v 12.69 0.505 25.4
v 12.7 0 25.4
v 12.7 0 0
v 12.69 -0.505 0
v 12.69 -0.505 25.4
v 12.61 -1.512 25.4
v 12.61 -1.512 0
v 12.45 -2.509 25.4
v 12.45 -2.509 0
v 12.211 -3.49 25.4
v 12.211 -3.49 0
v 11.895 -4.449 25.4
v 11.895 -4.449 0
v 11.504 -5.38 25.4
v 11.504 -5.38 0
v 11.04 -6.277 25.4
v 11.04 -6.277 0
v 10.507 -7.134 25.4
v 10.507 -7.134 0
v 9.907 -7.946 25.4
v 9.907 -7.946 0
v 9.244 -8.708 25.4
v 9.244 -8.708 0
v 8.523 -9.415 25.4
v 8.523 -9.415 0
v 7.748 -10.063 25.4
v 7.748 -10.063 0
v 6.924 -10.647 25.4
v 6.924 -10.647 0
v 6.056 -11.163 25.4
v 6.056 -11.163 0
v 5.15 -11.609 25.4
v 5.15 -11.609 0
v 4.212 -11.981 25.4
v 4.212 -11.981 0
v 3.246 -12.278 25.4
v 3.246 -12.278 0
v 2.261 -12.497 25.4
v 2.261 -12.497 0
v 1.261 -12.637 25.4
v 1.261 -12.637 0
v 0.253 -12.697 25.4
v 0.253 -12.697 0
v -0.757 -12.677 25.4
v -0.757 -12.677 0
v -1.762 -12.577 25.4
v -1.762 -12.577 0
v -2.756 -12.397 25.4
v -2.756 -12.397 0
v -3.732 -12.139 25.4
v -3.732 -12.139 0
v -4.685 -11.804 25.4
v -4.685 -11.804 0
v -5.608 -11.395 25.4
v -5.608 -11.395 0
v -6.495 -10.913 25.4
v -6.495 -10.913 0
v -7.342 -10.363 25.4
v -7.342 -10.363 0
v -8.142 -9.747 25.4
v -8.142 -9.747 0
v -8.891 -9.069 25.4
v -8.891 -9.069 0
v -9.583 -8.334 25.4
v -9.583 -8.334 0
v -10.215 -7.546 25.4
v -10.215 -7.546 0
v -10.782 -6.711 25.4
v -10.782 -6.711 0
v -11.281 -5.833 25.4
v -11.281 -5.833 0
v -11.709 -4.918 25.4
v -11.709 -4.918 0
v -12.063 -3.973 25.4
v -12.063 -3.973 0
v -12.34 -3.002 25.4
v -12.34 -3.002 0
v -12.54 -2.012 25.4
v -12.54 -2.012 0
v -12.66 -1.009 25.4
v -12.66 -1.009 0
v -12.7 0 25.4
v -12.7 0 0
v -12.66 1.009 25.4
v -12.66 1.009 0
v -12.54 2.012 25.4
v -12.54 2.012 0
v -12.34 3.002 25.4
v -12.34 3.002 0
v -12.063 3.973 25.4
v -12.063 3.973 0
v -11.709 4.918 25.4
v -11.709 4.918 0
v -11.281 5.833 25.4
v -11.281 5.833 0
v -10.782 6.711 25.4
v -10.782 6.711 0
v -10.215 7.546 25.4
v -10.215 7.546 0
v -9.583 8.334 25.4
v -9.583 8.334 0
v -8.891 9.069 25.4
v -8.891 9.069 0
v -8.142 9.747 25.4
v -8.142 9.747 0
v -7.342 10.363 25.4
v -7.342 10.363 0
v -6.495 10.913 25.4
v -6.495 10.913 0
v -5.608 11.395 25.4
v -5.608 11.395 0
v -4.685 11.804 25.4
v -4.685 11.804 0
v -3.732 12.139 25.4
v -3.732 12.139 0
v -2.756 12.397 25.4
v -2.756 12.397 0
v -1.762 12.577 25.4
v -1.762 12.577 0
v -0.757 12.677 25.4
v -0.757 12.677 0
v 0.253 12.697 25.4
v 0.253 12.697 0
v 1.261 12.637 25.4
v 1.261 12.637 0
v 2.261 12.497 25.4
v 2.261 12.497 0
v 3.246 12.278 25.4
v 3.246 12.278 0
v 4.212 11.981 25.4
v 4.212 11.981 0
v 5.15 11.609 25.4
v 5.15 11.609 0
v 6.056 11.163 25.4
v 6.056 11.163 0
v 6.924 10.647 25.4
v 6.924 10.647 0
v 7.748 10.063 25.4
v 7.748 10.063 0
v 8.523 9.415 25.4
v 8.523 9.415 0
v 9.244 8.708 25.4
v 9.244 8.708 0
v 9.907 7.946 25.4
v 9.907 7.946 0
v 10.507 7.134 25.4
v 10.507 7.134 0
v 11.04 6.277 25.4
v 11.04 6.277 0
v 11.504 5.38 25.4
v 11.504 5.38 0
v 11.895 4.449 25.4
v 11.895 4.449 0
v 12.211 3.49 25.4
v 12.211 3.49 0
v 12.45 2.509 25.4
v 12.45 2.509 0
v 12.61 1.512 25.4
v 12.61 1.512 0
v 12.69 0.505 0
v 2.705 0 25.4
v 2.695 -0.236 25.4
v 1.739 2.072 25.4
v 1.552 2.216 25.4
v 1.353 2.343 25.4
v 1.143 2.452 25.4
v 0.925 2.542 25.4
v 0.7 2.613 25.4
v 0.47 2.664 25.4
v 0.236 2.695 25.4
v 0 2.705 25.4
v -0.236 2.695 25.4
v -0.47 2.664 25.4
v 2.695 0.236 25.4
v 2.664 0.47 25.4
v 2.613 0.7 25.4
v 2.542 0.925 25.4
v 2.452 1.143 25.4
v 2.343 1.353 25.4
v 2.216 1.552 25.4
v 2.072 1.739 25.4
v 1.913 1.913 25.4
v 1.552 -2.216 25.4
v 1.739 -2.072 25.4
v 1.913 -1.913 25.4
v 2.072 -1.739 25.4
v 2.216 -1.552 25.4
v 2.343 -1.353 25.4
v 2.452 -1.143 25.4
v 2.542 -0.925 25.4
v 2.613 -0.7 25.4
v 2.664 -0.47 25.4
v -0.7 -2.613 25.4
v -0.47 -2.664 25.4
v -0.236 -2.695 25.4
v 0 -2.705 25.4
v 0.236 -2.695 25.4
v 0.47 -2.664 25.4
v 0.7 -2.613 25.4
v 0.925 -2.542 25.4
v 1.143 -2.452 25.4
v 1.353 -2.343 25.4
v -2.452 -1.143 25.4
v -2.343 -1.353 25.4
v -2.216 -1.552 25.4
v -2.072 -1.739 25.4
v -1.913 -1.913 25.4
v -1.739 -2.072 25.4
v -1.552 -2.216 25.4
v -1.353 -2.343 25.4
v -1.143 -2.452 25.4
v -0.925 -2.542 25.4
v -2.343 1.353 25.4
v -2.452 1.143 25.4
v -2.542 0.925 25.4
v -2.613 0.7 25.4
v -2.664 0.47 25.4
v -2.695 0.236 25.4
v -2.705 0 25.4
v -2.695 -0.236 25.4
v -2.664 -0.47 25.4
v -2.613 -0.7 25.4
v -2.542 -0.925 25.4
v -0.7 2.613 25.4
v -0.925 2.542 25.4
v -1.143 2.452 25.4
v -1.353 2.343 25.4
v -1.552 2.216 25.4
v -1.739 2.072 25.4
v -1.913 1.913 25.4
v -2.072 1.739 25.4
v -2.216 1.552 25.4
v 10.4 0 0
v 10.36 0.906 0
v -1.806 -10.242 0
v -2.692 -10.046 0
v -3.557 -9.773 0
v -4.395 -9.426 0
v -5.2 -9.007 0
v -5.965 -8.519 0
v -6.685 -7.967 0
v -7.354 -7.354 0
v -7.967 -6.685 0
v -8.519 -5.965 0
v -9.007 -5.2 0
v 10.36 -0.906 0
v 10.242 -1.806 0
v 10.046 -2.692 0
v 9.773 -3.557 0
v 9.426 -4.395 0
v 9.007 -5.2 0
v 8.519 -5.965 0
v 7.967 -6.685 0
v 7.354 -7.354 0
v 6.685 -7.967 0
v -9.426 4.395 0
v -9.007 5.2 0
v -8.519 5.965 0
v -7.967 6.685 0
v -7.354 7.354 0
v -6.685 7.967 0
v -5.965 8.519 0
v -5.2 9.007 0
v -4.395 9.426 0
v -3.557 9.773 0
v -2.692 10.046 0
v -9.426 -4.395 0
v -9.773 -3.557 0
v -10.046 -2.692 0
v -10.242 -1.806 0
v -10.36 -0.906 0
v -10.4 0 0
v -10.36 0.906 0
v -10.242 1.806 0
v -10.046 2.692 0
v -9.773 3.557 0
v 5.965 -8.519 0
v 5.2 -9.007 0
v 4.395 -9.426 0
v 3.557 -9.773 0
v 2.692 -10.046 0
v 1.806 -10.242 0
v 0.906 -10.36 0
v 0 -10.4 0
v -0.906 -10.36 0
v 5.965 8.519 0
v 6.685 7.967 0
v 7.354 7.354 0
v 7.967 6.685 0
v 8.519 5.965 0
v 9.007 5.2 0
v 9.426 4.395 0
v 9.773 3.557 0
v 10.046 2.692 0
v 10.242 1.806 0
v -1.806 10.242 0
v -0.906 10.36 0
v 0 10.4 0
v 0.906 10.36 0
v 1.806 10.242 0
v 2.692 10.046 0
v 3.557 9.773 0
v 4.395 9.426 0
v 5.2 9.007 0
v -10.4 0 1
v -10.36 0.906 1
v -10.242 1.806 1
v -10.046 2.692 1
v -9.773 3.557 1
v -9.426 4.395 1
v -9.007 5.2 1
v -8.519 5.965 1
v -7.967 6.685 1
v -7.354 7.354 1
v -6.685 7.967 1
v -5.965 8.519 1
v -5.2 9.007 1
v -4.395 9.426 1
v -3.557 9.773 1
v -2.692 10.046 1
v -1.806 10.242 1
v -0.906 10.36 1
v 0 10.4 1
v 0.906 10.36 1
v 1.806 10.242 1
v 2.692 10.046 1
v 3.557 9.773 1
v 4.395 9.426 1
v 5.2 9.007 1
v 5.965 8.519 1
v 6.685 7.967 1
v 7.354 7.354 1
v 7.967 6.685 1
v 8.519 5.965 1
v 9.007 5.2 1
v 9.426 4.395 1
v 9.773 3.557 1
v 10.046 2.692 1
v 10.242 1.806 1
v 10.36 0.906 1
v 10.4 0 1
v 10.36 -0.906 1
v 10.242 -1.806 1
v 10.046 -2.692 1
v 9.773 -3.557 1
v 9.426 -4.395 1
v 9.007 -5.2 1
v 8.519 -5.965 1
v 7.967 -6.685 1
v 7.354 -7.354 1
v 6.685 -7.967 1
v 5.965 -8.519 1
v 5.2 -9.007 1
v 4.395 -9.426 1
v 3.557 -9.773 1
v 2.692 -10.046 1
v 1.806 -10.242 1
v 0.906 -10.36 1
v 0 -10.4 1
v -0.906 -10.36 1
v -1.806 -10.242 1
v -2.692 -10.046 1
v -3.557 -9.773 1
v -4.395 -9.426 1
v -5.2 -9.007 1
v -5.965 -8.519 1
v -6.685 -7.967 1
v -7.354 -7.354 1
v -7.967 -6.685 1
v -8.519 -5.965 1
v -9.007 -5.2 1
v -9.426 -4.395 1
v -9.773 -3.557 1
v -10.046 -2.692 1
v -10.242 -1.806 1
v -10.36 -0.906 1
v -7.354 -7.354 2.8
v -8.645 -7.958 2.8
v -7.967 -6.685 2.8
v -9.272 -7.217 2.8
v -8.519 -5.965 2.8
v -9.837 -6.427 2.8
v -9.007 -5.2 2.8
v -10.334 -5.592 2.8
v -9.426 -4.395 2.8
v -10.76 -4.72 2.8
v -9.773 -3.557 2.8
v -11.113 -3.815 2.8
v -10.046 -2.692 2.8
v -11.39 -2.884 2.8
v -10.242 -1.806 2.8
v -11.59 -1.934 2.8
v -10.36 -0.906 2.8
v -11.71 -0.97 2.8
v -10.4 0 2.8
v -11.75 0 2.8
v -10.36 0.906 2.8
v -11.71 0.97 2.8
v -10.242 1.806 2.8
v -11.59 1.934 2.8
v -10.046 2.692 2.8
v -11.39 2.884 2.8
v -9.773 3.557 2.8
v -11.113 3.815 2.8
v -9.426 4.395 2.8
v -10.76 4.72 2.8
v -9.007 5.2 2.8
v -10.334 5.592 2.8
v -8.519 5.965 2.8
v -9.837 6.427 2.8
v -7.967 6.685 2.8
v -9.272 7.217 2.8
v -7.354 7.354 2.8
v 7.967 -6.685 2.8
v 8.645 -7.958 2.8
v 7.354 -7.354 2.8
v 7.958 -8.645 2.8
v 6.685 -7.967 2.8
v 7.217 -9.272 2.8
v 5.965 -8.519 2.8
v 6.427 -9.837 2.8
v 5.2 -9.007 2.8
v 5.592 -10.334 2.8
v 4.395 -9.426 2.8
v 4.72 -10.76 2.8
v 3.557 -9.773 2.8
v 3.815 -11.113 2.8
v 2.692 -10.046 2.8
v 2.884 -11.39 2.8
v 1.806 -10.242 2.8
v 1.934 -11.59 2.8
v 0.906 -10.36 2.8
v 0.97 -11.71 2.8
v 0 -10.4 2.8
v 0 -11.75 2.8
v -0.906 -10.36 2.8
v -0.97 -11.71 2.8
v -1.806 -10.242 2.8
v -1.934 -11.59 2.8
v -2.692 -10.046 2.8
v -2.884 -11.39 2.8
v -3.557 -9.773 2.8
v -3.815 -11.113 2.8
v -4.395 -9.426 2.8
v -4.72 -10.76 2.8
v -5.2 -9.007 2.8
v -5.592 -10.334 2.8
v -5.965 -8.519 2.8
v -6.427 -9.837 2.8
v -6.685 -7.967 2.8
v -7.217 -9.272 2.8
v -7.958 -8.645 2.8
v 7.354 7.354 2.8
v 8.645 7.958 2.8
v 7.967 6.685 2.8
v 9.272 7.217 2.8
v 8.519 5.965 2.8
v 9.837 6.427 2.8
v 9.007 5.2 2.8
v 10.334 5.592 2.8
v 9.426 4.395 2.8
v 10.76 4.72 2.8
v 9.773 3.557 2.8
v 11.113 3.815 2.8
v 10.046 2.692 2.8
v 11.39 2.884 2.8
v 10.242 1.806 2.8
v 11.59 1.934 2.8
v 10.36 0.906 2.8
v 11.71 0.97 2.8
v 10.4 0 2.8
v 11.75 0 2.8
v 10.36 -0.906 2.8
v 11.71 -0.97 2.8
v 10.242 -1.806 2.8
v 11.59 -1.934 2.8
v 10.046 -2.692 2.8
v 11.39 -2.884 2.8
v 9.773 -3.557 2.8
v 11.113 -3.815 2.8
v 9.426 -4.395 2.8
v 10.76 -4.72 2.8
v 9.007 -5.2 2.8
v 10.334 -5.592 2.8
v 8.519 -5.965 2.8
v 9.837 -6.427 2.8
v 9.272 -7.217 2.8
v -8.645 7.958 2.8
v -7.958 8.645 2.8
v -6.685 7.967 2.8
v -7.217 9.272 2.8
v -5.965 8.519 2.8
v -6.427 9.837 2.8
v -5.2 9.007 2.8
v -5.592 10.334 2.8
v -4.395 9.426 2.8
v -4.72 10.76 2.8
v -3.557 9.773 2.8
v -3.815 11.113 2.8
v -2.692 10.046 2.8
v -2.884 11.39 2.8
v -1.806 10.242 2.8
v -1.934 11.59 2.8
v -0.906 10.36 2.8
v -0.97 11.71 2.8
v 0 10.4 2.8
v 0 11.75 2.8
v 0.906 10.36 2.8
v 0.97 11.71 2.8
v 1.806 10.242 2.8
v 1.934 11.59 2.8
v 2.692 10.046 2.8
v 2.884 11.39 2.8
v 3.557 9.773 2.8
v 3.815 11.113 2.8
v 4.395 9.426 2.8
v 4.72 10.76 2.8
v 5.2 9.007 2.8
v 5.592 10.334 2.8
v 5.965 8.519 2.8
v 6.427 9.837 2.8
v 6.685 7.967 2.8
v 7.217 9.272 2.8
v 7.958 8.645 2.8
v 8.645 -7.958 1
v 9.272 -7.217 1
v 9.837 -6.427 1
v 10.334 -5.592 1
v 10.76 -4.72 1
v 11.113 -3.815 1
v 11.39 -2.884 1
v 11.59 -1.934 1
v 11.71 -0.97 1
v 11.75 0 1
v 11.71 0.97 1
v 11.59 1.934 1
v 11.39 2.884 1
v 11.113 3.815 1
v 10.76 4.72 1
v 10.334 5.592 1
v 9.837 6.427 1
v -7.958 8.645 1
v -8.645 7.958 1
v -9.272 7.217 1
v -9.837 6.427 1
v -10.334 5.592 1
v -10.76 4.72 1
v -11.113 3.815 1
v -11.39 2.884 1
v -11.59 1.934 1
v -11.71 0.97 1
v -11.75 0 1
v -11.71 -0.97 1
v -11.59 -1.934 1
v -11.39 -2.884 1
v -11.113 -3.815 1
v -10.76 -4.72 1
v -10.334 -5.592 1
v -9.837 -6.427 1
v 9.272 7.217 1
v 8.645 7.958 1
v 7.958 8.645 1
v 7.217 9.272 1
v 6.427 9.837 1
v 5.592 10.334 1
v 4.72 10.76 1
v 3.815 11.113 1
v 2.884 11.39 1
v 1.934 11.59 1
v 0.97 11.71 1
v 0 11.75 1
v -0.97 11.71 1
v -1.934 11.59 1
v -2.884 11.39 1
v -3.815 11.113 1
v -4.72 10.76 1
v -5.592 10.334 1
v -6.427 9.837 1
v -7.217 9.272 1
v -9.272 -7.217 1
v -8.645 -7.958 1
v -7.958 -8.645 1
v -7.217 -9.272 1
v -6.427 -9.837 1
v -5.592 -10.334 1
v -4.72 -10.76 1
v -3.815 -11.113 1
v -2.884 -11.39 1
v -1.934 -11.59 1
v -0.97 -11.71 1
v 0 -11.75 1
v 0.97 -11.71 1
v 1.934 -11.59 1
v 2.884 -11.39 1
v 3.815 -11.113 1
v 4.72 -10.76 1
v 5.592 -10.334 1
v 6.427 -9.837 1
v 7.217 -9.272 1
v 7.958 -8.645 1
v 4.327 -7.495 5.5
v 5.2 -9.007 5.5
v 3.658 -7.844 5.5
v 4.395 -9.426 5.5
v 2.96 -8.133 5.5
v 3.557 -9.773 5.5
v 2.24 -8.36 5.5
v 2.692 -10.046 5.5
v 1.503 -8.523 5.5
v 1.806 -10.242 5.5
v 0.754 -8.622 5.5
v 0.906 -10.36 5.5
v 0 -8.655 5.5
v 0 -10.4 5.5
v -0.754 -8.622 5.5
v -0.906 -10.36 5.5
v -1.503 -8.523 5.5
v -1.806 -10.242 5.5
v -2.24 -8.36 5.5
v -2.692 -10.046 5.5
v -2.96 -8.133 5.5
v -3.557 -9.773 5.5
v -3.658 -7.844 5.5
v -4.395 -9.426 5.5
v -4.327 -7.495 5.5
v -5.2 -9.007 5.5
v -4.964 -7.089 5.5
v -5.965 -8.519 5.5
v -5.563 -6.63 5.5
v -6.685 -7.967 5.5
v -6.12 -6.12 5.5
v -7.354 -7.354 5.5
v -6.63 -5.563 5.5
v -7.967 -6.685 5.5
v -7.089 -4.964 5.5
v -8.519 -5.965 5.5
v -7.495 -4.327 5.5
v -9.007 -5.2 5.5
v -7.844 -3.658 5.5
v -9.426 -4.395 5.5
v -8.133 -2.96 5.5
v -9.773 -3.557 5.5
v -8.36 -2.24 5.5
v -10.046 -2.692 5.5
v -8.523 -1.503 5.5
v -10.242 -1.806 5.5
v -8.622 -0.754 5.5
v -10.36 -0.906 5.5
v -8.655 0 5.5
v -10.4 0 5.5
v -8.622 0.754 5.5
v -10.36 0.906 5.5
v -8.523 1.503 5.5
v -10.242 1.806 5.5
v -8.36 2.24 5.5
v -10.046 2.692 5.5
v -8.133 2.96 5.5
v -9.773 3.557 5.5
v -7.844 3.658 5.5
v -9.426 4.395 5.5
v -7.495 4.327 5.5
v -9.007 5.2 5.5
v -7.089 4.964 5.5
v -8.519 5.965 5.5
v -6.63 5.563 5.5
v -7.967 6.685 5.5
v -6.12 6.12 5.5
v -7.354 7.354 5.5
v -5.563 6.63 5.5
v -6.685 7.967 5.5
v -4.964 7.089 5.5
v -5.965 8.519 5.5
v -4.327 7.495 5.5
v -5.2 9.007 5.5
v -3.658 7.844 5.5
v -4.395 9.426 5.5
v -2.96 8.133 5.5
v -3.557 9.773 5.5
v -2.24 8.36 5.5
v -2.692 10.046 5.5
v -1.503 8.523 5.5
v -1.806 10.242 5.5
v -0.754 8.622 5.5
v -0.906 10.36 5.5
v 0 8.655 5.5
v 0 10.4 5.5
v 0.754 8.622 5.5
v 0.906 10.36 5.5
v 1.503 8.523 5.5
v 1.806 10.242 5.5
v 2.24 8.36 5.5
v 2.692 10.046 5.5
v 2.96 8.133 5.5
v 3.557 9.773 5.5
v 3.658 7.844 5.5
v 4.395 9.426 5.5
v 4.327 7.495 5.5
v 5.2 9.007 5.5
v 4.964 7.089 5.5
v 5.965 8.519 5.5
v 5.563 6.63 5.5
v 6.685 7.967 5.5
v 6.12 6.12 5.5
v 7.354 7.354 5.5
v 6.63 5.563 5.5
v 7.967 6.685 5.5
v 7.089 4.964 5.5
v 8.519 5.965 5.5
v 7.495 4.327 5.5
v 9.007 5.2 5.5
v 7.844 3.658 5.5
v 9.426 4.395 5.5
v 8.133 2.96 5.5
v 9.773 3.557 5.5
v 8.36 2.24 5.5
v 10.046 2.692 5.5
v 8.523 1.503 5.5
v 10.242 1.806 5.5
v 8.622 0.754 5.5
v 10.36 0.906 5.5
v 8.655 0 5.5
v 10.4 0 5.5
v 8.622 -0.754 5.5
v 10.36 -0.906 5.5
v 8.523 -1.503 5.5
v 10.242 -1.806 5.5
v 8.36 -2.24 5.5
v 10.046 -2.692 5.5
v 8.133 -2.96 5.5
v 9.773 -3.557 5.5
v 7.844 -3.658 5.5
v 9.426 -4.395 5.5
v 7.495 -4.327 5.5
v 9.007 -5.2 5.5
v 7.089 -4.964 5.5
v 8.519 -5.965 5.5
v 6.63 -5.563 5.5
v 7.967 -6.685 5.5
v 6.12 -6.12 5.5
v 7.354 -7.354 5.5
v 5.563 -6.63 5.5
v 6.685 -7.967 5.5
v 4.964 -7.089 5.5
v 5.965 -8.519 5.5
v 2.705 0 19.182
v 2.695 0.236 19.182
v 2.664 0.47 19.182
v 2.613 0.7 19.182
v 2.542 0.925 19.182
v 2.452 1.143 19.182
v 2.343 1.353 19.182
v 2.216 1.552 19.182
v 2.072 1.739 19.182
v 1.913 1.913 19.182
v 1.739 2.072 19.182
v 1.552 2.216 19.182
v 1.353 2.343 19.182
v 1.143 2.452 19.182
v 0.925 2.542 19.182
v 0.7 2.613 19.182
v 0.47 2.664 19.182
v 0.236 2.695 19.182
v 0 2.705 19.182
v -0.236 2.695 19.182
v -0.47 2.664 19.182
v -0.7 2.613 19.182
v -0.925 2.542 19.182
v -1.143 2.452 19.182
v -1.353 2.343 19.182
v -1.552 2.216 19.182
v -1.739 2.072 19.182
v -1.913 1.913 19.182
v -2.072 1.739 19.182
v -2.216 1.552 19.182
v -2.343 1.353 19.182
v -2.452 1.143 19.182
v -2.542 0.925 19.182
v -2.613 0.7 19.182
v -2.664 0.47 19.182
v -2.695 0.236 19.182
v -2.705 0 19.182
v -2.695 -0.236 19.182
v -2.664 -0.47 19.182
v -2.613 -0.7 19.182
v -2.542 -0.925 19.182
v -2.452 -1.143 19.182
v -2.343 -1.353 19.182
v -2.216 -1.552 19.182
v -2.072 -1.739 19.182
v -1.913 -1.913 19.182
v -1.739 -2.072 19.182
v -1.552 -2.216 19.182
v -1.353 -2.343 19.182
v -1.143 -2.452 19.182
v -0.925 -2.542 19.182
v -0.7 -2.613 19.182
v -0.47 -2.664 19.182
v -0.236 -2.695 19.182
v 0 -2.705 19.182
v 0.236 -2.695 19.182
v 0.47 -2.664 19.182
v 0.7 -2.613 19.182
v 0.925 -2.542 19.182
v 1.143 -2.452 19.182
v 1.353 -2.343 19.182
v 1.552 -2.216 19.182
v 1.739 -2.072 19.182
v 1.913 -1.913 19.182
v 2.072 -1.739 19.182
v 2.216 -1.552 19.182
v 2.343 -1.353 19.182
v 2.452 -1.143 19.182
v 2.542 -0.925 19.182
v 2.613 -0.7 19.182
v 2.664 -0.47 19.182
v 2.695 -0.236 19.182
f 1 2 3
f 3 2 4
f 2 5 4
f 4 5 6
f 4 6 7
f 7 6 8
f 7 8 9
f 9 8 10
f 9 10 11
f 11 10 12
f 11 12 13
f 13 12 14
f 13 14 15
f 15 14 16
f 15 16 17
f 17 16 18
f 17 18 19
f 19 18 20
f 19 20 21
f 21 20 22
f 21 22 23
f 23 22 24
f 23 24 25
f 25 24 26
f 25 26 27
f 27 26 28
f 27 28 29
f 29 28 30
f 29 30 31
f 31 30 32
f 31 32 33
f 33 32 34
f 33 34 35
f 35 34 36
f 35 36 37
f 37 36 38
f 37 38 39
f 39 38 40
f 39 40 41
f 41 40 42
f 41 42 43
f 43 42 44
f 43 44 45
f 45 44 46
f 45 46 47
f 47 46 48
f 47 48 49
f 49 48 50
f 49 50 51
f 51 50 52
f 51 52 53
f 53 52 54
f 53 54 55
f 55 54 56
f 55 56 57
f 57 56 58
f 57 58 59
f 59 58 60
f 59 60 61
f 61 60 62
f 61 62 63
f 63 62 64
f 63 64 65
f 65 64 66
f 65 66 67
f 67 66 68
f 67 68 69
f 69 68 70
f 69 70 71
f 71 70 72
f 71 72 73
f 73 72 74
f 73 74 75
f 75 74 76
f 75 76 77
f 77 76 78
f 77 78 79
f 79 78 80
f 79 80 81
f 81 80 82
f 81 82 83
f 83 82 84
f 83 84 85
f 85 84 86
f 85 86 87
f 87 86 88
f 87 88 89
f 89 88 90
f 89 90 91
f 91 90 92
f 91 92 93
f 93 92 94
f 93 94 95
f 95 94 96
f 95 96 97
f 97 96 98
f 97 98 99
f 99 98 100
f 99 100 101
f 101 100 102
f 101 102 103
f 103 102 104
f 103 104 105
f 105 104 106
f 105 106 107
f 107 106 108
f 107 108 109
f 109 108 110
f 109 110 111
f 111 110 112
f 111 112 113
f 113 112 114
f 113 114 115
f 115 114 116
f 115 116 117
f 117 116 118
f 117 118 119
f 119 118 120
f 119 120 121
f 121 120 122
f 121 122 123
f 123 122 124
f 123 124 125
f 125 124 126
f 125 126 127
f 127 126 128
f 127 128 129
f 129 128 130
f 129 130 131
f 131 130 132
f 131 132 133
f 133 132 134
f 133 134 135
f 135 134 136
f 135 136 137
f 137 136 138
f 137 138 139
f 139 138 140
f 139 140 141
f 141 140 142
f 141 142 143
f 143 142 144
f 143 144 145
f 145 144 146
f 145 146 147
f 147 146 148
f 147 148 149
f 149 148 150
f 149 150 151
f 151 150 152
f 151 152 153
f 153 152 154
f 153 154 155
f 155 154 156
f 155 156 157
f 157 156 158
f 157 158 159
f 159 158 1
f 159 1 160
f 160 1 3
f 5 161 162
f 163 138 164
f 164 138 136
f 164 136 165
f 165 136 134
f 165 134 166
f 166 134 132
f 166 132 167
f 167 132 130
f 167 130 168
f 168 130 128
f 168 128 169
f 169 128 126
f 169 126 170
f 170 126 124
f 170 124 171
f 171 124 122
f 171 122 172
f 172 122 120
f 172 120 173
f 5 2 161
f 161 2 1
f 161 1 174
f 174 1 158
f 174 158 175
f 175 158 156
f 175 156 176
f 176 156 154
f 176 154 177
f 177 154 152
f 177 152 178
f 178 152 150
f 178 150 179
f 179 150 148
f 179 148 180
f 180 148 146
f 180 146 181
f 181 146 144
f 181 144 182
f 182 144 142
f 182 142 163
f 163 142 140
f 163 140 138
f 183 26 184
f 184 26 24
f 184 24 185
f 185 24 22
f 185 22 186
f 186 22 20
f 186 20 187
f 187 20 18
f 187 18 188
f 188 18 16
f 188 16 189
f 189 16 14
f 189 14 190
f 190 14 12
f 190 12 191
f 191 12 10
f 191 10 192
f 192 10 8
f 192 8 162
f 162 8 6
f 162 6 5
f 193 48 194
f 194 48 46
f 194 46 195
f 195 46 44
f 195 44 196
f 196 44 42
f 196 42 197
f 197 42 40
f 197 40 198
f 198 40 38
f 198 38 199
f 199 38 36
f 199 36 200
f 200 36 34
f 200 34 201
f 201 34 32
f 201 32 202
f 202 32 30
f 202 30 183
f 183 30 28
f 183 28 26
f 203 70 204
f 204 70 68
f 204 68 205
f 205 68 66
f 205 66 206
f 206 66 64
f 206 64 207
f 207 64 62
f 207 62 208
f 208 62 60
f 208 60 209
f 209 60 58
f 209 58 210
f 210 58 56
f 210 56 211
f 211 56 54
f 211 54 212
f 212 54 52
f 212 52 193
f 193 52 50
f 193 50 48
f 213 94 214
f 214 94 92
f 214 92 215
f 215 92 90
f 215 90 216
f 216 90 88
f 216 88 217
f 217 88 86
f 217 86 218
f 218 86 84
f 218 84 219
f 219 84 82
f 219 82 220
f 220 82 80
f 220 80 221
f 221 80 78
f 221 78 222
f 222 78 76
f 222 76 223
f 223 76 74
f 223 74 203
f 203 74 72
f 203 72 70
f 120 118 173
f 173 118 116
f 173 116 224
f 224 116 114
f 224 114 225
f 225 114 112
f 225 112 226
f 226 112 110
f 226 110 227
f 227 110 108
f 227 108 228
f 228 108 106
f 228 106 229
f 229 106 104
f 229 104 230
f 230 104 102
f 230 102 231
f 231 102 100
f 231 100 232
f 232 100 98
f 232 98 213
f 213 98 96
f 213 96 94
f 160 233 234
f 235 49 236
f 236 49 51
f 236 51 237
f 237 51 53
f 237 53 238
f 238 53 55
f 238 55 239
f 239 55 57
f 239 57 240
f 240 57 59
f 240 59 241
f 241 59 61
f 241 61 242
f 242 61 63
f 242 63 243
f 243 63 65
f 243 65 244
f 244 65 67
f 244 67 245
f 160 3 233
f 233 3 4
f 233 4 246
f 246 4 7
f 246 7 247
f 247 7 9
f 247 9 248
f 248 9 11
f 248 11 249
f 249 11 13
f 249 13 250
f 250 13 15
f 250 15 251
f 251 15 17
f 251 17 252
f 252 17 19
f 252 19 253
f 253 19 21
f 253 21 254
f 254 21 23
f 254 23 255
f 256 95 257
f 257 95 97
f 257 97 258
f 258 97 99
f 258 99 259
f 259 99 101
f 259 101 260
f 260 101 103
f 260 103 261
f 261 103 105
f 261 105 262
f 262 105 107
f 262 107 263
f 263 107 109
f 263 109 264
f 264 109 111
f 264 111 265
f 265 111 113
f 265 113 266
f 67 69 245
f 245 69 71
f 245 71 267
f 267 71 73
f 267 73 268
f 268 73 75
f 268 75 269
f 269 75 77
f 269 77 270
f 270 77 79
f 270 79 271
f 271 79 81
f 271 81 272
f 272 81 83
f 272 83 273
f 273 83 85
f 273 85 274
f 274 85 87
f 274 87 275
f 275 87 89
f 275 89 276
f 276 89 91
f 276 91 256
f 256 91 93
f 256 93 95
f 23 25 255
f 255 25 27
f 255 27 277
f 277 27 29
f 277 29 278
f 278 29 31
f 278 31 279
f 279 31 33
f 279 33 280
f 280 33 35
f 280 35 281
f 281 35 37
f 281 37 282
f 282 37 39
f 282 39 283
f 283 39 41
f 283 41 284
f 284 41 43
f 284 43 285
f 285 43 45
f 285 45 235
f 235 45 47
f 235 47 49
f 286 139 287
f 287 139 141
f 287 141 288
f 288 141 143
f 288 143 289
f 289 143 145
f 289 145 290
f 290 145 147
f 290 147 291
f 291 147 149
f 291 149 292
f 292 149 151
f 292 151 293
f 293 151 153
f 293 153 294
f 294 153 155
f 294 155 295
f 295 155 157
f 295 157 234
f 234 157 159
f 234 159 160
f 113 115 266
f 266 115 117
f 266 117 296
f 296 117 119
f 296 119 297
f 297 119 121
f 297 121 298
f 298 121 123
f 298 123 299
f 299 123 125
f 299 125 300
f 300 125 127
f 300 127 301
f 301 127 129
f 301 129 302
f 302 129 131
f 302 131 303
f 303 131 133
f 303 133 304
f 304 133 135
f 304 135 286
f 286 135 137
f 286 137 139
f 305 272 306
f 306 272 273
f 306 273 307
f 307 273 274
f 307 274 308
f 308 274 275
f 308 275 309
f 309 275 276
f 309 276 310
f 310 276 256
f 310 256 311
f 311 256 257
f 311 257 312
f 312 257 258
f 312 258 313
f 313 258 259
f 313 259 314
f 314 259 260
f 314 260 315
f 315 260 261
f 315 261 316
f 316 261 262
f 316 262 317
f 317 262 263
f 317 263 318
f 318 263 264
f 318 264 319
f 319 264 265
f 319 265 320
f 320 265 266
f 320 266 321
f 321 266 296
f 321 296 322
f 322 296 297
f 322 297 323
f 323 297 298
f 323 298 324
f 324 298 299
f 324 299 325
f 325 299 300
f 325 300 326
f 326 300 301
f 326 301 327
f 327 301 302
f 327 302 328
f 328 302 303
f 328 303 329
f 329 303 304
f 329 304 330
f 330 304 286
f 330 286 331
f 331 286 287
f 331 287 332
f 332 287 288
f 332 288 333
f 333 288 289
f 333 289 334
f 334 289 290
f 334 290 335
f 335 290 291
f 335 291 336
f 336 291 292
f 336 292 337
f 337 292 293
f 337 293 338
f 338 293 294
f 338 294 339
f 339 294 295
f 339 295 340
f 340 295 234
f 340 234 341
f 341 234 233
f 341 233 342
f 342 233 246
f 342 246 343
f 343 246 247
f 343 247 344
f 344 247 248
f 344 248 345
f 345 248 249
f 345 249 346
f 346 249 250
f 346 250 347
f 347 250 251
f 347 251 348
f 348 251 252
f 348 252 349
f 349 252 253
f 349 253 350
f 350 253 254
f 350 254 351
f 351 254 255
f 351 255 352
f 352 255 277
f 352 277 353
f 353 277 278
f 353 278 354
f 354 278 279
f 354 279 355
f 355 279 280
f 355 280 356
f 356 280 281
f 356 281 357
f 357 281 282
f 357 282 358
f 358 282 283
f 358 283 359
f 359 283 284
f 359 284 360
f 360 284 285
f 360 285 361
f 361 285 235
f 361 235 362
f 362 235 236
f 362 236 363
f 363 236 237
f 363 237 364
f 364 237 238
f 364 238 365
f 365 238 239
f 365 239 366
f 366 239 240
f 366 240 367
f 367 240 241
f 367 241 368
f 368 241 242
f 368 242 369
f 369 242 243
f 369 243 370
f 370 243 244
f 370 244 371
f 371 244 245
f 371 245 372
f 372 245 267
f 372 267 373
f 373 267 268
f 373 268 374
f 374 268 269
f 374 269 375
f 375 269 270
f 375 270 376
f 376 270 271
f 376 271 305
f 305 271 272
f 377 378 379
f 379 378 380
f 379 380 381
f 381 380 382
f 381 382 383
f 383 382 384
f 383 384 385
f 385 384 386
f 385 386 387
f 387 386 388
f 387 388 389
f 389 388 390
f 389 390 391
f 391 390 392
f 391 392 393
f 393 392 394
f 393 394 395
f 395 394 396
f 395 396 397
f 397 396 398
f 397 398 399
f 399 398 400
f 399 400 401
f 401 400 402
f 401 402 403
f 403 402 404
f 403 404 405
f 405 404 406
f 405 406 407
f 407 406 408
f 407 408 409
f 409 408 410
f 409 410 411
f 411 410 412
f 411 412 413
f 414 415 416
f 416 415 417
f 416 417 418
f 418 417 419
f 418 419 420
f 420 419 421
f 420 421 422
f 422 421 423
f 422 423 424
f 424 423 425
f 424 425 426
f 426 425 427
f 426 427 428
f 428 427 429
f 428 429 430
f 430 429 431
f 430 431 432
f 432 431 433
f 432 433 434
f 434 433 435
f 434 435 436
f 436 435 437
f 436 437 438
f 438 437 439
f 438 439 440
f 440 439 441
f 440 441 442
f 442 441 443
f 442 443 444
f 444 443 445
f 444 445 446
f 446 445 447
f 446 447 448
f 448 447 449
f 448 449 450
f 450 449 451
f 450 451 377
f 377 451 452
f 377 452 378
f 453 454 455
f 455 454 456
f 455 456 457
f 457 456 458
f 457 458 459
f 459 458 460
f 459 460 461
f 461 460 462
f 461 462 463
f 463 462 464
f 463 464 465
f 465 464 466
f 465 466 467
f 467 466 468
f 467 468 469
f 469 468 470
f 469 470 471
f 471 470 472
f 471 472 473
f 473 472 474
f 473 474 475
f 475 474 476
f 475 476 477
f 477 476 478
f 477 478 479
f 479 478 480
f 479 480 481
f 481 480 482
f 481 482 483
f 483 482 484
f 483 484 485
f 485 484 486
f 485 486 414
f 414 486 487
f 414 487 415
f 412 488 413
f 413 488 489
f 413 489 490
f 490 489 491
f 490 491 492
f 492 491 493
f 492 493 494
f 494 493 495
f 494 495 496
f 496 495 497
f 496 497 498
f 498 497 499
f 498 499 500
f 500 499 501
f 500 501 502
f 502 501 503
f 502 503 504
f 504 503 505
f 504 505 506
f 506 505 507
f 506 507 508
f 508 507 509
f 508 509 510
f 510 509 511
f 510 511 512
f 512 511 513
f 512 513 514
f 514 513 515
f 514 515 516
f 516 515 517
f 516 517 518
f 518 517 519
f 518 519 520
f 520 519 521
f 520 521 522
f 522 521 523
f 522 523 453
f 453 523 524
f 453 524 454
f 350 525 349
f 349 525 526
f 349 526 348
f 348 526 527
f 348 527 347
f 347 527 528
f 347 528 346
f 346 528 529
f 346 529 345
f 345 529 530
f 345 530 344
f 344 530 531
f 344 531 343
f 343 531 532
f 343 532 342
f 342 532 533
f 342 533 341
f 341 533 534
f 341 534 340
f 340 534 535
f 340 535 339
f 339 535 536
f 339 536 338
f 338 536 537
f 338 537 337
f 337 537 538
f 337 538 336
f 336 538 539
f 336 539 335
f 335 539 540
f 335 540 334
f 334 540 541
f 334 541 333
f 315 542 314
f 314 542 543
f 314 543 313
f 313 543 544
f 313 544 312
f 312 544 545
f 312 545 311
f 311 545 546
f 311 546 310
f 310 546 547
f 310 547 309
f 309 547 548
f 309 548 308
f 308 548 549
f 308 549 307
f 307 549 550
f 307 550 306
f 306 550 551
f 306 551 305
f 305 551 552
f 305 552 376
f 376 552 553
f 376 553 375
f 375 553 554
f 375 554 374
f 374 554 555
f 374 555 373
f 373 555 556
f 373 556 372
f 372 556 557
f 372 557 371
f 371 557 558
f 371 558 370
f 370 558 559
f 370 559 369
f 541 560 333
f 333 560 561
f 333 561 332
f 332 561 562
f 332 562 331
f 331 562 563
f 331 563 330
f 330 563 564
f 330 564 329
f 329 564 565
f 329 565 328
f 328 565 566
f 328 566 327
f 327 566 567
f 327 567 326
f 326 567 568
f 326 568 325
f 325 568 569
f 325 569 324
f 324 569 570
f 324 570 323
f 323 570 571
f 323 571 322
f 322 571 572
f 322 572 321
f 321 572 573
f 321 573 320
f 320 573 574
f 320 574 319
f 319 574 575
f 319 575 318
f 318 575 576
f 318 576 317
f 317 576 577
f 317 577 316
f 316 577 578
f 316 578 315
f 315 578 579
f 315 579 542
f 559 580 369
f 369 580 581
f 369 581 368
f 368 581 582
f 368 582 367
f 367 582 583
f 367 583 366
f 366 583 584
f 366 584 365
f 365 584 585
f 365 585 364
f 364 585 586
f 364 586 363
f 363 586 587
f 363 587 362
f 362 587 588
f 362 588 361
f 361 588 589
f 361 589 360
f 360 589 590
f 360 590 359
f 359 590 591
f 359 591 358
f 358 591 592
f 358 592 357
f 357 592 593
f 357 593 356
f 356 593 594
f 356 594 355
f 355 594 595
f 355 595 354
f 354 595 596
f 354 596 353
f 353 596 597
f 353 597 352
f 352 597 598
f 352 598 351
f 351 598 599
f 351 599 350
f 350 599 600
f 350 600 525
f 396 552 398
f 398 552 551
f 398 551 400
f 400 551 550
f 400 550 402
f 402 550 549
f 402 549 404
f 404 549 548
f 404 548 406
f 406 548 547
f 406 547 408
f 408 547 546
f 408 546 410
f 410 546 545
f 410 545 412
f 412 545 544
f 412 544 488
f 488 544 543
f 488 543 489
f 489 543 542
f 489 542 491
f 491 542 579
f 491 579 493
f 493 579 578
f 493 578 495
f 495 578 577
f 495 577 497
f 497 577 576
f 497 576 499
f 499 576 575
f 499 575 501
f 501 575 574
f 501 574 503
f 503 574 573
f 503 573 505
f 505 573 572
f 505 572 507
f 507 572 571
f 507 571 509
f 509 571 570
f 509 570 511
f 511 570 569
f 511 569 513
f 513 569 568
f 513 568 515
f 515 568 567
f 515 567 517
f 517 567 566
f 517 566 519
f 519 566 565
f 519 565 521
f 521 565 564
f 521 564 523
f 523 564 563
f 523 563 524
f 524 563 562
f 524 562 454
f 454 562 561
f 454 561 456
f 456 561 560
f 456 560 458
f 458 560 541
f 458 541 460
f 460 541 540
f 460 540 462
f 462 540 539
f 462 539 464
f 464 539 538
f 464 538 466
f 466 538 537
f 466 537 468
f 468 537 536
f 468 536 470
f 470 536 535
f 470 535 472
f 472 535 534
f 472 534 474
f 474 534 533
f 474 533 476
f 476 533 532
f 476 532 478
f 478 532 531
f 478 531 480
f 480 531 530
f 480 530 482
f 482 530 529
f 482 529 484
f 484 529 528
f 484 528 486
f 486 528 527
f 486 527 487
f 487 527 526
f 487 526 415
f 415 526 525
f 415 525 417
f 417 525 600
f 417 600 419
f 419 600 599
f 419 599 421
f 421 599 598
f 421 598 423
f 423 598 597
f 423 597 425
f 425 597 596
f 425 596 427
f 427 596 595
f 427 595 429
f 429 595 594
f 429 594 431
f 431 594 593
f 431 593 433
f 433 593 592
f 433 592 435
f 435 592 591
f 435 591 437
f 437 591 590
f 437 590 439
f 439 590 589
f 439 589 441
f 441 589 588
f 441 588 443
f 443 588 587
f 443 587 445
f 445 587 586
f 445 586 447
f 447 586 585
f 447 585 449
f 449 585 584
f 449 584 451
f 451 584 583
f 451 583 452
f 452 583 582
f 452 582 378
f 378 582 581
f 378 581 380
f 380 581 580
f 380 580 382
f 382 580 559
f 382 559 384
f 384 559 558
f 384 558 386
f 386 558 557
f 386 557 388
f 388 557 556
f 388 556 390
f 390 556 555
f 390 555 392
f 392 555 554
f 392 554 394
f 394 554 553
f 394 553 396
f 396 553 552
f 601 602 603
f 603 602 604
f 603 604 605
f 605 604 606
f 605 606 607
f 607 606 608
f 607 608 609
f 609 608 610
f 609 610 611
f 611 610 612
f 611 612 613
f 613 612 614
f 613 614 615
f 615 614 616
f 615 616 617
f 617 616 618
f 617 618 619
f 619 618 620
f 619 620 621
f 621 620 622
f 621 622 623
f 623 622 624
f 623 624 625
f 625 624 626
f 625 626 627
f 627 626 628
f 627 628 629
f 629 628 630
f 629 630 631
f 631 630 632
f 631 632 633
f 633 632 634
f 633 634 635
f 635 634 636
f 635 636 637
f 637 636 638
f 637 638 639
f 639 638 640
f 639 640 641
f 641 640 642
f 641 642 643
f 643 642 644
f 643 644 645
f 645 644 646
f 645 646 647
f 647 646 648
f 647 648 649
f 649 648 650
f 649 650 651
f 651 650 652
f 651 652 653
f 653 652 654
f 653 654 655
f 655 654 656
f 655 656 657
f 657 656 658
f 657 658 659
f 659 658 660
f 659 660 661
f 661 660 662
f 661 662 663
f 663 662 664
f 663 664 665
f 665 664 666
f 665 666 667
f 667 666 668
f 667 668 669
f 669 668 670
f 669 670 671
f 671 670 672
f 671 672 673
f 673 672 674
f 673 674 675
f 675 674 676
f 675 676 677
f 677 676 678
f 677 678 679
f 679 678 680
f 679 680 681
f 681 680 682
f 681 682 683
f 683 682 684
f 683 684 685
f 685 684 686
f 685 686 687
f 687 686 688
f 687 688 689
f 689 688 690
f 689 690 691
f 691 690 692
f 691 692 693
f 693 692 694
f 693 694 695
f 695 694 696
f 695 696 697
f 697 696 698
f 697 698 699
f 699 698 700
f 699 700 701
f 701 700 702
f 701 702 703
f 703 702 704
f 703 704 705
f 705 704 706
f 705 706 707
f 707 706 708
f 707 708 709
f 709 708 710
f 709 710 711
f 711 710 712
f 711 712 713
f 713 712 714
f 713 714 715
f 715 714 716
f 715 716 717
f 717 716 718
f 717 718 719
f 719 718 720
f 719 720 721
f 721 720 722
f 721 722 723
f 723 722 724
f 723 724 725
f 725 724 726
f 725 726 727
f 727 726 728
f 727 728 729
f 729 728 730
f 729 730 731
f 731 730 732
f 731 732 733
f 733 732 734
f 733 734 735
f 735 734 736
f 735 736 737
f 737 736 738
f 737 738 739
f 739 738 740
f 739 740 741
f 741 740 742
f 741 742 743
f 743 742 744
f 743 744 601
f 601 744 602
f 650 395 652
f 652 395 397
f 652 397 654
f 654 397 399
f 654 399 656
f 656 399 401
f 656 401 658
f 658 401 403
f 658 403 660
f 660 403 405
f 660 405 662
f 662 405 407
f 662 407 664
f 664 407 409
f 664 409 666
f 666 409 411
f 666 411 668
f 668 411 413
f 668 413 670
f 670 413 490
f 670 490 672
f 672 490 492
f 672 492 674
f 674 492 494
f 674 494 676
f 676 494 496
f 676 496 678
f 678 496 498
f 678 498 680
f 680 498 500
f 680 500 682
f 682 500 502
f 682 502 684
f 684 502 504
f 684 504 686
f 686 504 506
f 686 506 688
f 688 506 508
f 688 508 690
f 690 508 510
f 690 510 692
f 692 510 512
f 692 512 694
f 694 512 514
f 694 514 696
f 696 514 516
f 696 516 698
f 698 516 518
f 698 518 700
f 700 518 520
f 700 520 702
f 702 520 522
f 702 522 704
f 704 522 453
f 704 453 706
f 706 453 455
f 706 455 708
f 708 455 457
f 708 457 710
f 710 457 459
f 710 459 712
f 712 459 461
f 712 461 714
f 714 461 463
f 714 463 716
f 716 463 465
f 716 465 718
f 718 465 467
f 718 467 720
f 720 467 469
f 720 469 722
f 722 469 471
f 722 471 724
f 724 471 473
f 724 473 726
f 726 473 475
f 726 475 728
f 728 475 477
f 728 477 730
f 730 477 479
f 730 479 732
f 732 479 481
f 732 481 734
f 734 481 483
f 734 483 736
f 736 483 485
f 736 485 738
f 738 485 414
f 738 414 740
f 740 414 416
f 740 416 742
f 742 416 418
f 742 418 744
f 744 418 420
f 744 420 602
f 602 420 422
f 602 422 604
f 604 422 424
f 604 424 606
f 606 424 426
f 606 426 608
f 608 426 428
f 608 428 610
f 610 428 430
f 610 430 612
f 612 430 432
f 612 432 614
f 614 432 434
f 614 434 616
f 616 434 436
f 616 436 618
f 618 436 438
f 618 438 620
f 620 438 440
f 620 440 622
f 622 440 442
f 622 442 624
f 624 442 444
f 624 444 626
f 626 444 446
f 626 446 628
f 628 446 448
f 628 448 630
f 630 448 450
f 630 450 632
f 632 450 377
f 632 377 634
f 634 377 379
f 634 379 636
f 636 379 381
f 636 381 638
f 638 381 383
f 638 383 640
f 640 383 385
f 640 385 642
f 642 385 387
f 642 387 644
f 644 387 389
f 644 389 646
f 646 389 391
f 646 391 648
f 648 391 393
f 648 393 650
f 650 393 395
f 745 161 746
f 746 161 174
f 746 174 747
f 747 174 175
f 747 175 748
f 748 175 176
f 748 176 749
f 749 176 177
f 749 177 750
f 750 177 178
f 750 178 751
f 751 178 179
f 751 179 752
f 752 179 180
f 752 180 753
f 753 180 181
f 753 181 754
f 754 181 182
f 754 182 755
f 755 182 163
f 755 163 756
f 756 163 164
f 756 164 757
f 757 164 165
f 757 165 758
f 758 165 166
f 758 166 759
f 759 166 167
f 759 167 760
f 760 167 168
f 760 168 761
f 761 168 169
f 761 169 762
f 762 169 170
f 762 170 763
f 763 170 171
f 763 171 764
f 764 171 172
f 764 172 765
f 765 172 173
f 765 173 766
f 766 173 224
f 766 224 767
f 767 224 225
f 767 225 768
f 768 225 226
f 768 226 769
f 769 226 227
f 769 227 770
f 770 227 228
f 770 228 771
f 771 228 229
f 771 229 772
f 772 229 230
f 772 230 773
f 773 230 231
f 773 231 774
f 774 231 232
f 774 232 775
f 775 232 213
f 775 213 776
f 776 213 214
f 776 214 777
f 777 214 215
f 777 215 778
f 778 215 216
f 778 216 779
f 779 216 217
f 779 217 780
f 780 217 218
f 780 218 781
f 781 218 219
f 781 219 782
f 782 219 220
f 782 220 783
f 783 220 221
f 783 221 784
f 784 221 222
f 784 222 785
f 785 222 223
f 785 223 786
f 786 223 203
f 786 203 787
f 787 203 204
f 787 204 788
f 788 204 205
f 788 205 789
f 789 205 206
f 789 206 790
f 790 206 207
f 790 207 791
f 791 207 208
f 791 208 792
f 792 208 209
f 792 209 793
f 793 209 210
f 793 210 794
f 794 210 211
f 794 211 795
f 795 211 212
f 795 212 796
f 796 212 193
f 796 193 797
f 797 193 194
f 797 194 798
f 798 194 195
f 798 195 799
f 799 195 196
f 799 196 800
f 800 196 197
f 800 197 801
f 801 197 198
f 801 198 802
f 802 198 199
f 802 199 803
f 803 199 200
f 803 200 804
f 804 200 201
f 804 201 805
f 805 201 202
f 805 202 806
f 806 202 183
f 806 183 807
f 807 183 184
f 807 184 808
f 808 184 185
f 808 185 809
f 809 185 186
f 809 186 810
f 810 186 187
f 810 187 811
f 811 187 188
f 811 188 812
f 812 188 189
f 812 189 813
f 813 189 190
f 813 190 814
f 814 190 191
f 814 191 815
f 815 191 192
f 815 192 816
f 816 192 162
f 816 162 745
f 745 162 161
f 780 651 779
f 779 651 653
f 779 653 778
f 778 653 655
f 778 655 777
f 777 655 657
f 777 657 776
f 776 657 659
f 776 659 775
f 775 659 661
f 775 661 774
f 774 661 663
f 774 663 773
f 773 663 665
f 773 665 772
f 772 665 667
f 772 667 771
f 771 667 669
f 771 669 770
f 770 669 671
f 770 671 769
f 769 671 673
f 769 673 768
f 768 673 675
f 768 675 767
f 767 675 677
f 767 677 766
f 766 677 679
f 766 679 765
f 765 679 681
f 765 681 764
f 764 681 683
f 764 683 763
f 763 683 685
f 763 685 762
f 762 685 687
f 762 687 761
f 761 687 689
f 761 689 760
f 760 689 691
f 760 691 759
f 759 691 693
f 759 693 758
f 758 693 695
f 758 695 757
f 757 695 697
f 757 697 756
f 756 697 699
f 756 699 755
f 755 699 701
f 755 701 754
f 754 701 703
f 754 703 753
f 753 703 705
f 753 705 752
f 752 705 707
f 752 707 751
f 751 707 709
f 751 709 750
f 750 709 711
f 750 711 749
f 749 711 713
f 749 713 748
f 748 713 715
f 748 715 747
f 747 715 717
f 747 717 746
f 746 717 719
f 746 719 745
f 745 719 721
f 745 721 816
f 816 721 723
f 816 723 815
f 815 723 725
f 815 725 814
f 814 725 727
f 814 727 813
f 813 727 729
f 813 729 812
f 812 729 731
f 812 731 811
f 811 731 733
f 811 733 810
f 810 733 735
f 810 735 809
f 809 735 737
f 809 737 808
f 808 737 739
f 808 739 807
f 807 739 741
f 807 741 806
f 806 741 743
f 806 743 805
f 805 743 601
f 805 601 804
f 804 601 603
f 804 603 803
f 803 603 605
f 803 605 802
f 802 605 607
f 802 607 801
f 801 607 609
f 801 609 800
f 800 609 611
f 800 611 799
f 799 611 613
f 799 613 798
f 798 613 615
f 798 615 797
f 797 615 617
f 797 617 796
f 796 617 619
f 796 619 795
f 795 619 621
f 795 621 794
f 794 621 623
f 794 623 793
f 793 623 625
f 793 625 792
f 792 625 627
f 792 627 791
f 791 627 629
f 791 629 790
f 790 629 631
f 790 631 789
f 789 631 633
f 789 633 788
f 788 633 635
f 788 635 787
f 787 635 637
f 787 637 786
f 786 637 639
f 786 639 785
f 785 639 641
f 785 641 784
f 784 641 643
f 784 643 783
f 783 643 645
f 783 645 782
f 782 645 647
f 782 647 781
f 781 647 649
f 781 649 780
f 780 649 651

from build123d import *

# Parameters (mm, degrees)
SKETCH1_R               = 12.7
BOSS_EXTRUDE1_DEPTH     = 25.4
SKETCH2_R               = 10.4
CUT_EXTRUDE1_DEPTH      = 5.5
CUT_EXTRUDE2_START      = -1
SKETCH3_R               = 11.75
CUT_EXTRUDE2_DEPTH      = 1.8
F_1_4_28_TAPPED_HOLE1_D = 5.4102


with BuildPart() as part:
    # Sketch1 → Boss-Extrude1 (new body)
    with BuildSketch(Plane.XY):
        Circle(SKETCH1_R)
    extrude(amount=BOSS_EXTRUDE1_DEPTH)

    # Sketch2 → Cut-Extrude1 (cut)
    with BuildSketch(Plane(origin=(0, 0, 0), x_dir=(-1, 0, 0), z_dir=(0, 0, -1))):
        Circle(SKETCH2_R)
    extrude(amount=-CUT_EXTRUDE1_DEPTH, mode=Mode.SUBTRACT)

    # Sketch3 → Cut-Extrude2 (cut)
    with BuildSketch(Plane(origin=(0, 0, 0), x_dir=(-1, 0, 0), z_dir=(0, 0, -1)).offset(CUT_EXTRUDE2_START)):
        Circle(SKETCH3_R)
    extrude(amount=-CUT_EXTRUDE2_DEPTH, mode=Mode.SUBTRACT)

    # 1/4-28 Tapped Hole1 (through all)
    with Locations(Plane.XY.offset(25.4)):
        with Locations((0, 0)):
            Hole(F_1_4_28_TAPPED_HOLE1_D / 2)

    # Sketch10 → Cut-Revolve1 (revolve, cut)
    with BuildSketch(Plane(origin=(0, 0, 0), x_dir=(1, 0, 0), z_dir=(0, 1, 0))):
        Polygon((0, -25.402256059), (8.654624222, -5.5), (0, -5.5), align=None)
    revolve(axis=Axis((0, 0, 29.736025406), (0, 0, -1)), mode=Mode.SUBTRACT)


solid = part.part
